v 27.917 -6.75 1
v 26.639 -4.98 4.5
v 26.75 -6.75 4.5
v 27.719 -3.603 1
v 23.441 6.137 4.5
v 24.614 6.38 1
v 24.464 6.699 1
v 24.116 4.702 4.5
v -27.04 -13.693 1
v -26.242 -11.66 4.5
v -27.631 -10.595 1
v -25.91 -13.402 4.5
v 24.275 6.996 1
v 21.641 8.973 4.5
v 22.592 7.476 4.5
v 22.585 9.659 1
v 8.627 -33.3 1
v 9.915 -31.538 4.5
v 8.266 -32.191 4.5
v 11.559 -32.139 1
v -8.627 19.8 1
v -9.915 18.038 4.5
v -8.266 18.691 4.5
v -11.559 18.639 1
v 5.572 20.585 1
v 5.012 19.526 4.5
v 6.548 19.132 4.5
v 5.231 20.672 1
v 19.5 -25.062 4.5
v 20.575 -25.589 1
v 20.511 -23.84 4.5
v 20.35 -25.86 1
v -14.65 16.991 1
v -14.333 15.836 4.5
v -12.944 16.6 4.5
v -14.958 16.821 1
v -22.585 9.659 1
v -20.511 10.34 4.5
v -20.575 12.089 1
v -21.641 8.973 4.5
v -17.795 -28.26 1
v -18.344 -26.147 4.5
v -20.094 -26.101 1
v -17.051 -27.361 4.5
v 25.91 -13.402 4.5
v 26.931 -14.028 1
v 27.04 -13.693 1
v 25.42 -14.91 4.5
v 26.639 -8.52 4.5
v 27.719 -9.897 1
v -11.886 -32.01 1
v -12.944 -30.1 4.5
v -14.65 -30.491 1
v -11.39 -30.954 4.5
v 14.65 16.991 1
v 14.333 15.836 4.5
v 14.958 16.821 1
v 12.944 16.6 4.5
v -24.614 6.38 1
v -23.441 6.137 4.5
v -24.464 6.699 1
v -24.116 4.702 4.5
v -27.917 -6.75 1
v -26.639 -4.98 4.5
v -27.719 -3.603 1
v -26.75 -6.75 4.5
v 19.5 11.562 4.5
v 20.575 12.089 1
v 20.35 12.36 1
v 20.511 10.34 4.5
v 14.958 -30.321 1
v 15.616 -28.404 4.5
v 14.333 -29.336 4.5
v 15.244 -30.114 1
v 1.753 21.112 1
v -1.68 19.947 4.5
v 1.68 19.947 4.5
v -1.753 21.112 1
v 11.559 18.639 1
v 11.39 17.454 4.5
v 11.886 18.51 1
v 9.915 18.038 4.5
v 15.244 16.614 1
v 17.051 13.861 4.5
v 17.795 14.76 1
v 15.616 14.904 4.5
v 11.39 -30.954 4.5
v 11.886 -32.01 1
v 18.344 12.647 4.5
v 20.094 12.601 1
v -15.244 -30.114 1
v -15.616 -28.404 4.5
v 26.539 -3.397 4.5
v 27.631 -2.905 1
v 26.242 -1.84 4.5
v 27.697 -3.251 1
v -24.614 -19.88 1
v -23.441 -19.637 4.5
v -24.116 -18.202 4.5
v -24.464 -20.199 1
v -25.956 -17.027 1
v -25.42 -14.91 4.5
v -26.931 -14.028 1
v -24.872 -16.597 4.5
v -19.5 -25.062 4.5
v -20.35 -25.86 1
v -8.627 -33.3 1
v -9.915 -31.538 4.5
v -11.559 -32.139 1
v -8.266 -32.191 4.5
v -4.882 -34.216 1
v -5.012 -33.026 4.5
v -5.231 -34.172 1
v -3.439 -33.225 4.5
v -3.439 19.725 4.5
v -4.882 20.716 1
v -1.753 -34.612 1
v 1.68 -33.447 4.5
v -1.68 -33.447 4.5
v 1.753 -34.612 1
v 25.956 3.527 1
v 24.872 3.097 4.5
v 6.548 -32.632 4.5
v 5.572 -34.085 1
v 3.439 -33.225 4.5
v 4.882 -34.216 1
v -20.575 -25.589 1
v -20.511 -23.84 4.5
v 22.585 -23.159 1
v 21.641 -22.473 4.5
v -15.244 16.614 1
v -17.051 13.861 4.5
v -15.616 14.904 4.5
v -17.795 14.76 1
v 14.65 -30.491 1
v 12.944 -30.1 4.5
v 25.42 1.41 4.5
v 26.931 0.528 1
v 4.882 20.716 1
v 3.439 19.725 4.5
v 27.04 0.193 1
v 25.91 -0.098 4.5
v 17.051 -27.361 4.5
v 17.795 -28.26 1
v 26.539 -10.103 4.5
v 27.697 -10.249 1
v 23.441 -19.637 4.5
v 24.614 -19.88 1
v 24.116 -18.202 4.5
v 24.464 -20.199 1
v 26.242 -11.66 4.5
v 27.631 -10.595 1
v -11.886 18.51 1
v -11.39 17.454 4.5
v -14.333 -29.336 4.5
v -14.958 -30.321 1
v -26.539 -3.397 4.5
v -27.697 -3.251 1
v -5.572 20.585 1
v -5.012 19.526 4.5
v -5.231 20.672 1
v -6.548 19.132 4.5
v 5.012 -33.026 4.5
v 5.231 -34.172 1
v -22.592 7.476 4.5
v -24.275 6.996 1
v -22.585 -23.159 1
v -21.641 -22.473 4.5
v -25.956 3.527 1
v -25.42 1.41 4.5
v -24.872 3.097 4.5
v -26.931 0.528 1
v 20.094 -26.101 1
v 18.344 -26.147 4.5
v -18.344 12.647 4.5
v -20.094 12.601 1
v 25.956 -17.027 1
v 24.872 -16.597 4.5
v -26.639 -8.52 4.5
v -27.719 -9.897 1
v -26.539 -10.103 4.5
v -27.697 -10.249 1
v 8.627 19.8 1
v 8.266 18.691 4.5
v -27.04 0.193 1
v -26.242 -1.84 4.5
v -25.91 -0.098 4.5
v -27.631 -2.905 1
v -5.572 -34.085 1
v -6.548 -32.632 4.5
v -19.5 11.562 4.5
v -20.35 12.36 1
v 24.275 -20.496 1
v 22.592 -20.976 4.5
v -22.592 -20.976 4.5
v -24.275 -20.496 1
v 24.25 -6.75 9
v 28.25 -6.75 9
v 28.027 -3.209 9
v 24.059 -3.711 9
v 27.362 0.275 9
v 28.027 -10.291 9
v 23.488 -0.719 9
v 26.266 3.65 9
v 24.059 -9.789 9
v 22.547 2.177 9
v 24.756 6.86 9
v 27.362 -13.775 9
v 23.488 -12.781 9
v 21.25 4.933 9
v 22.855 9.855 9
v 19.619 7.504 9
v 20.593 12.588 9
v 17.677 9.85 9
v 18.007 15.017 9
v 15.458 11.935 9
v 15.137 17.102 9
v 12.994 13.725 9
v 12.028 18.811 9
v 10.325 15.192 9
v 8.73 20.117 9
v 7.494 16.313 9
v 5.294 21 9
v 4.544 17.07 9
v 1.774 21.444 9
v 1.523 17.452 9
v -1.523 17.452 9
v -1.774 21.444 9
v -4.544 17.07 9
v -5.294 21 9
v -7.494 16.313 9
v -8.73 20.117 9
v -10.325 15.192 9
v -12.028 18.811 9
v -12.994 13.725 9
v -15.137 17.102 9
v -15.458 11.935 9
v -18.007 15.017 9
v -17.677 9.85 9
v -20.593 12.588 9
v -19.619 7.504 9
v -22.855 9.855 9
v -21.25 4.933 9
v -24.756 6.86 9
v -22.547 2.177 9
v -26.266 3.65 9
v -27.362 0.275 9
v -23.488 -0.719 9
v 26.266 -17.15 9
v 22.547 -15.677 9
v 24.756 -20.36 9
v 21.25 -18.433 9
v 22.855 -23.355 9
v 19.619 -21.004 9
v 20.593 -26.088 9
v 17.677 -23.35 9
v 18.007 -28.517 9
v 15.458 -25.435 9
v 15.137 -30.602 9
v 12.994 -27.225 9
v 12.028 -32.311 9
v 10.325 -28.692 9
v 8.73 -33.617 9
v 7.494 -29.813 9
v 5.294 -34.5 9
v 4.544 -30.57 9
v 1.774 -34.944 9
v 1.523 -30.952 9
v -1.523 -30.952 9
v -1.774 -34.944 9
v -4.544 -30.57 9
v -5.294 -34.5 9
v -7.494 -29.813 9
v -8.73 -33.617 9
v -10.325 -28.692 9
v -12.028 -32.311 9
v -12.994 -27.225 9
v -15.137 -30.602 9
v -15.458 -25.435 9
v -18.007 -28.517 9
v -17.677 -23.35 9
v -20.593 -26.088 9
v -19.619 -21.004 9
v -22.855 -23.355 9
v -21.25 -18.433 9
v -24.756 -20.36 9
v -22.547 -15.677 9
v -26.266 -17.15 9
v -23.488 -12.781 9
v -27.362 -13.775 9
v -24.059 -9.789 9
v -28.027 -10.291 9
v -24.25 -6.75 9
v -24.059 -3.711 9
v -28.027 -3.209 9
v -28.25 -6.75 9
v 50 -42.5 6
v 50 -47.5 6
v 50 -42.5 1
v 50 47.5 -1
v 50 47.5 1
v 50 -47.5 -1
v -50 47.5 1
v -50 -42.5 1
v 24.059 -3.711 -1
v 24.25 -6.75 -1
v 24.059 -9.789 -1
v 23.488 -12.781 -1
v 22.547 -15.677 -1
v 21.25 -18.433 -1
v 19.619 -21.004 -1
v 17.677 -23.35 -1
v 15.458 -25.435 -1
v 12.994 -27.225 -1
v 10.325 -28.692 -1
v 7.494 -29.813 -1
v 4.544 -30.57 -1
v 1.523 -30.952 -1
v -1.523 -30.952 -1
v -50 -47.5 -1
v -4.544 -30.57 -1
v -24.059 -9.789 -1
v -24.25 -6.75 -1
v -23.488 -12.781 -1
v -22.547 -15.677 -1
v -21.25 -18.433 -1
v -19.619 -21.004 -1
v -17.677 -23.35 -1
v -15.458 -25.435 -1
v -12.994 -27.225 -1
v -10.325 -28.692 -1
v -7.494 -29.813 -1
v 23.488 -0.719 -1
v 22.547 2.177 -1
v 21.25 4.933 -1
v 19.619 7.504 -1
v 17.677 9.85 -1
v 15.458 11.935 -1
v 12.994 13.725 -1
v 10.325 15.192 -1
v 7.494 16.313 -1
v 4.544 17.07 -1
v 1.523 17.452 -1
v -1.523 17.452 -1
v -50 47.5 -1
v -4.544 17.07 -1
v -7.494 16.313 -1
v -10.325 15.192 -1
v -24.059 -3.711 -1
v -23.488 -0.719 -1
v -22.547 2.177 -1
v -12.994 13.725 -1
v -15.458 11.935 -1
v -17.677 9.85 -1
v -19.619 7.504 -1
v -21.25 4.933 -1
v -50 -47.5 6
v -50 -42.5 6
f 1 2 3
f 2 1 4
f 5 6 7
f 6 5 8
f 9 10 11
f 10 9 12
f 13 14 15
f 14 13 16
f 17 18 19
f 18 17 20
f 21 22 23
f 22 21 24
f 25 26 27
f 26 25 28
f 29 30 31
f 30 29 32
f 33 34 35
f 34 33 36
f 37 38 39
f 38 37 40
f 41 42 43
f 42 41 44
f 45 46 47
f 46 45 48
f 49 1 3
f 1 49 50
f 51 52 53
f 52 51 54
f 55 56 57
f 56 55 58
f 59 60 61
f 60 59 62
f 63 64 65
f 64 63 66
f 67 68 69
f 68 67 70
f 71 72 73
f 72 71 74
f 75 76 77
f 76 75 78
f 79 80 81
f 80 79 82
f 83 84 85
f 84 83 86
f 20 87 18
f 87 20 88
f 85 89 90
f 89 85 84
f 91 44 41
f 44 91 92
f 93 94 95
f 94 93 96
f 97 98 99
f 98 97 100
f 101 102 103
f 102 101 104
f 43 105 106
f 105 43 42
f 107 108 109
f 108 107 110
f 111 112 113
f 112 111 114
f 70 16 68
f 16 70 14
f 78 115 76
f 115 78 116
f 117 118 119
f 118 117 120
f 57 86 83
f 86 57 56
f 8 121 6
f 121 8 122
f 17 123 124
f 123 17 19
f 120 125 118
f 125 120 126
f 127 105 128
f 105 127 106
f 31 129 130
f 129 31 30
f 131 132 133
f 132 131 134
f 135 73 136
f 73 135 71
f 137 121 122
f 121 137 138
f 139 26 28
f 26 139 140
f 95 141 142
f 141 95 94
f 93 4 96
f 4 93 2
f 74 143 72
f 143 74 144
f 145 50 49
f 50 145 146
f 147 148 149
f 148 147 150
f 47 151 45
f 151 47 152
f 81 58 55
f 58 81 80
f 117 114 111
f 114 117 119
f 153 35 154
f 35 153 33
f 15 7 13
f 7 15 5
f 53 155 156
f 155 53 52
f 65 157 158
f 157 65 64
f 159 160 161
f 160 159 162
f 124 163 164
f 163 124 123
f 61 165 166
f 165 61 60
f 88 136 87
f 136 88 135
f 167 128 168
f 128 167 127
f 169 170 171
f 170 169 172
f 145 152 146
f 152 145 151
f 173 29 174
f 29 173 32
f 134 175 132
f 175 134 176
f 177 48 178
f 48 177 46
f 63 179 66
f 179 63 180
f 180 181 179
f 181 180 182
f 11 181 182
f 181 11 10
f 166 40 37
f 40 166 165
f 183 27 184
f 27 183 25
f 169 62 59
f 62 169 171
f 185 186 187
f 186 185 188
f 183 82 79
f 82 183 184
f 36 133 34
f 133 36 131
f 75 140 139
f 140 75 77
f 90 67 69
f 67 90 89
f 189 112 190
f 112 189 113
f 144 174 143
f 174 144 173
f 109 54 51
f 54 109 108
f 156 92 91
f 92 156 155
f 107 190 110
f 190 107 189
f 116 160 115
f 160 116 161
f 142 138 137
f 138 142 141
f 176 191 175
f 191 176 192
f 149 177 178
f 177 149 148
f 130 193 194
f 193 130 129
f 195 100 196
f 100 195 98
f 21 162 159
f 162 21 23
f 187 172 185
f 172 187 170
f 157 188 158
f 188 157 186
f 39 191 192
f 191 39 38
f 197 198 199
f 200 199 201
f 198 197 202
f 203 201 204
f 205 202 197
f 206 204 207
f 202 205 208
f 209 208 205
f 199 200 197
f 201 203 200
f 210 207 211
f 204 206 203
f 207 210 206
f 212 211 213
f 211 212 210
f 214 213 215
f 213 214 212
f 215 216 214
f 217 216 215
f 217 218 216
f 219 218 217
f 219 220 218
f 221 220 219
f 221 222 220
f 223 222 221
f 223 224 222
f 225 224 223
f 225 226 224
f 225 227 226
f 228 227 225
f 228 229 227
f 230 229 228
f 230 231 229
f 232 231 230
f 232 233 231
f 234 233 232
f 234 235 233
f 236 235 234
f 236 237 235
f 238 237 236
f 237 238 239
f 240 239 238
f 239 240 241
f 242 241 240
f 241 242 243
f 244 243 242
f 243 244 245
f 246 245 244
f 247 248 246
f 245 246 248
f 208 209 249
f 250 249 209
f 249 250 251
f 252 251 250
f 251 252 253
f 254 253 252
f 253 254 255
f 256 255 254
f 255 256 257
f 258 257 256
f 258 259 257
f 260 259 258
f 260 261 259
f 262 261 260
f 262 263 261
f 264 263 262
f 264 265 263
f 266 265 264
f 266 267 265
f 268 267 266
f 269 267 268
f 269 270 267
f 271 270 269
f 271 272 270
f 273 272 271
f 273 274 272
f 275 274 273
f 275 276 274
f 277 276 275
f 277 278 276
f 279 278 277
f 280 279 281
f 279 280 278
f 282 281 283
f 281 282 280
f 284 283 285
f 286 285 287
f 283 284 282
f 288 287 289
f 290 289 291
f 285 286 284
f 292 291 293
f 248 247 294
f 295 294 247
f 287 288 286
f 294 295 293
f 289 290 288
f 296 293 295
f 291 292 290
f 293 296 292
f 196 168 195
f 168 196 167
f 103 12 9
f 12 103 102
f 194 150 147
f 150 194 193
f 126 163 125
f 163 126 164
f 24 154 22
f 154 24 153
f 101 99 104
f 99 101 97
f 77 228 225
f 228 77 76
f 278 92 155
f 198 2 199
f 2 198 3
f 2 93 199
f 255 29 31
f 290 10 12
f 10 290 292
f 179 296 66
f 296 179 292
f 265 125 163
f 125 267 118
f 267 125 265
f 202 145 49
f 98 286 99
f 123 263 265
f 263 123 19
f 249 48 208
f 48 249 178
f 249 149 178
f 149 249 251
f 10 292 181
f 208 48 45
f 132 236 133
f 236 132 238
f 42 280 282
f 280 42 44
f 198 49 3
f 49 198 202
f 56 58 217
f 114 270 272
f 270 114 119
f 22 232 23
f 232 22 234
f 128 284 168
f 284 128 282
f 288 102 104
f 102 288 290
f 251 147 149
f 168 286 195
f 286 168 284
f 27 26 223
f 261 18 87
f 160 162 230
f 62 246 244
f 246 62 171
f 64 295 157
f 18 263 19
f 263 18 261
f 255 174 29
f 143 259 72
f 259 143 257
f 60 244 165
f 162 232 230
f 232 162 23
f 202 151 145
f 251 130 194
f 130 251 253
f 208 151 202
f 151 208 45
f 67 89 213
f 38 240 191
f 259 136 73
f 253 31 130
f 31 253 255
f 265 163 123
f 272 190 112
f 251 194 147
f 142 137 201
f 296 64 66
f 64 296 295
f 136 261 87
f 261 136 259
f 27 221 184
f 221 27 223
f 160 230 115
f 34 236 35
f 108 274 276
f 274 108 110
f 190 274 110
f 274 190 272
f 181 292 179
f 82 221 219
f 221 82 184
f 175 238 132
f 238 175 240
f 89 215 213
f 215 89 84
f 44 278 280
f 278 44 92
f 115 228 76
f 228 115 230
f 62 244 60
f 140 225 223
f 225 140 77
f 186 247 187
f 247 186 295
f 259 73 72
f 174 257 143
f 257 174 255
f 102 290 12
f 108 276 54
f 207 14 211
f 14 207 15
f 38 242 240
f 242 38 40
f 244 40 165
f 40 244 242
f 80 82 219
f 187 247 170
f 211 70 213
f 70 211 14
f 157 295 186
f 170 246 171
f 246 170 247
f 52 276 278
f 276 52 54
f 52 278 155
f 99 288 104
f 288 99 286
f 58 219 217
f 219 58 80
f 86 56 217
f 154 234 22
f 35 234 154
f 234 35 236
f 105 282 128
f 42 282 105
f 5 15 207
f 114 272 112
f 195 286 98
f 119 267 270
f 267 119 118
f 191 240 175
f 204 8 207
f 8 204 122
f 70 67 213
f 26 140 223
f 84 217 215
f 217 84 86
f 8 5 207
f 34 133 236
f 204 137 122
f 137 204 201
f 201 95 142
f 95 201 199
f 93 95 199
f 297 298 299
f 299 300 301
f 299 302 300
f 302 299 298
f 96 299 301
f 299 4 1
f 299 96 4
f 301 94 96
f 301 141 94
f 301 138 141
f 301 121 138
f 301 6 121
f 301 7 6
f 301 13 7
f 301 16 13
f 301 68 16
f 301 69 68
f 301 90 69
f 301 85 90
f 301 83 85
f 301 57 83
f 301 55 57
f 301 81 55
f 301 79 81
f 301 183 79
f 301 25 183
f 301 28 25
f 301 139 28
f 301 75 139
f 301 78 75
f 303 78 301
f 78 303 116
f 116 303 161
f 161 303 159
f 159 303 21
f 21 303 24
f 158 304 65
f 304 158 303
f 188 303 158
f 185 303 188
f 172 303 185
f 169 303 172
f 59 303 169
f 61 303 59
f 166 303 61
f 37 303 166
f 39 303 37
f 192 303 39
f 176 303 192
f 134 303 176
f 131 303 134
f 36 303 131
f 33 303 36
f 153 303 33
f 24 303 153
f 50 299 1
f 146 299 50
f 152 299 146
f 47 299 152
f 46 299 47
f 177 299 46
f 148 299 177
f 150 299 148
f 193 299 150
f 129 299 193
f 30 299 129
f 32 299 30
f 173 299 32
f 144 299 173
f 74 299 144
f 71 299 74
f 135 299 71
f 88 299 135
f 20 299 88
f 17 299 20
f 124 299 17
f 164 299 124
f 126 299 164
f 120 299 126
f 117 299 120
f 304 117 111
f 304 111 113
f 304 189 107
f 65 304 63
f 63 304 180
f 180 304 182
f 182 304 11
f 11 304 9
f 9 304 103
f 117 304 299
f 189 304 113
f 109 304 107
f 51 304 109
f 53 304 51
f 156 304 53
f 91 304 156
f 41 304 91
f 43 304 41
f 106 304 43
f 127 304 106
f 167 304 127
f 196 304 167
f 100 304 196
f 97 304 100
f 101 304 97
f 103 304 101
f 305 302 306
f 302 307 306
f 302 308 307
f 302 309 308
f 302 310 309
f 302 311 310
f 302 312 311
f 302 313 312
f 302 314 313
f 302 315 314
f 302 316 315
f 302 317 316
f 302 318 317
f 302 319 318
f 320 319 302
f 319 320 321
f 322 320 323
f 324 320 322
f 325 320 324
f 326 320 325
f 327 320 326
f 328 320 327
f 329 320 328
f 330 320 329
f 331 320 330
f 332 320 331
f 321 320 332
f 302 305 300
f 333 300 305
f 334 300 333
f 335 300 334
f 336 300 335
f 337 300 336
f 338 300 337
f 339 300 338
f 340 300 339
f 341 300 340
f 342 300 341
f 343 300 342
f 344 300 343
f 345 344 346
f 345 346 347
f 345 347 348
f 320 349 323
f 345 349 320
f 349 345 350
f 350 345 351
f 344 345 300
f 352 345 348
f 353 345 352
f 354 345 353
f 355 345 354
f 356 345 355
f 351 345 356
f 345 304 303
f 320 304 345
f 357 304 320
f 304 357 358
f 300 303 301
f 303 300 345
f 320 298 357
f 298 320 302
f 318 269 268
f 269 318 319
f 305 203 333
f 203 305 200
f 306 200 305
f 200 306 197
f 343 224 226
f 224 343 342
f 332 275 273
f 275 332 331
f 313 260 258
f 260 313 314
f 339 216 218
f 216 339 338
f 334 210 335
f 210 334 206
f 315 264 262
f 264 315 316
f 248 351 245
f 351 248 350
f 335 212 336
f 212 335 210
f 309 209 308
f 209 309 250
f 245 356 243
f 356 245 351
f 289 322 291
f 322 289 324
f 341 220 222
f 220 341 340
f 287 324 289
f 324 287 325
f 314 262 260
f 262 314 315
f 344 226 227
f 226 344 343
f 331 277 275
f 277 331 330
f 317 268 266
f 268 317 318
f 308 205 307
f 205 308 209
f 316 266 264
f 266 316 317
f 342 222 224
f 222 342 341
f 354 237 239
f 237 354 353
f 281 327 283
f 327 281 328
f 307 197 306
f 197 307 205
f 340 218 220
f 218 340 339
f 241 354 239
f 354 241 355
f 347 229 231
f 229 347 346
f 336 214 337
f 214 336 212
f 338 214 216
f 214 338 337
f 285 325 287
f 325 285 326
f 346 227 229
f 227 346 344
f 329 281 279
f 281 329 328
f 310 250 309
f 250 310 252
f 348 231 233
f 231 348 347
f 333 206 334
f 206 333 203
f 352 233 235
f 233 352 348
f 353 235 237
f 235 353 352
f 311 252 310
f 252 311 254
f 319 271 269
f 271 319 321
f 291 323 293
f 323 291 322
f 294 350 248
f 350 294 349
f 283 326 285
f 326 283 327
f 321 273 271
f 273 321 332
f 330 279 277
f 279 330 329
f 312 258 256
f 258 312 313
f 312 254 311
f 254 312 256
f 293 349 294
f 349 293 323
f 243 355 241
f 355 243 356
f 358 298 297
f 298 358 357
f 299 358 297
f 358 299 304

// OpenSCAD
$fn=50;
Alto=95;
Ancho=100;

Espesor = 2; 

AlturaAgarre=7;
AlturaTotal = Espesor + AlturaAgarre;

DiametroCilindro = 48.5;

Tope = 5 ; // Espesor del tope en la parte inferior

y_Offset = Alto/2 - (30+DiametroCilindro/2);

difference(){
    union(){
        cube([Ancho, Alto, Espesor], center=true);
        translate([0,y_Offset,AlturaTotal/2])
        {
            cylinder(d1=DiametroCilindro+4*Espesor, d2 = DiametroCilindro+ Espesor , h=AlturaTotal, center=true);
            cylinder(d2=DiametroCilindro+4*Espesor, d1 = DiametroCilindro+ Espesor , h=AlturaTotal, center=true);
        }
    }

    translate([0,y_Offset,AlturaTotal/2])
    cylinder(d=DiametroCilindro, h=AlturaTotal+Espesor+1, center=true);

}
// Borde de 5mm
translate([0,-Alto/2+Tope/2, Espesor/2 + Tope/2])
        cube([Ancho, Tope, Tope], center=true);
